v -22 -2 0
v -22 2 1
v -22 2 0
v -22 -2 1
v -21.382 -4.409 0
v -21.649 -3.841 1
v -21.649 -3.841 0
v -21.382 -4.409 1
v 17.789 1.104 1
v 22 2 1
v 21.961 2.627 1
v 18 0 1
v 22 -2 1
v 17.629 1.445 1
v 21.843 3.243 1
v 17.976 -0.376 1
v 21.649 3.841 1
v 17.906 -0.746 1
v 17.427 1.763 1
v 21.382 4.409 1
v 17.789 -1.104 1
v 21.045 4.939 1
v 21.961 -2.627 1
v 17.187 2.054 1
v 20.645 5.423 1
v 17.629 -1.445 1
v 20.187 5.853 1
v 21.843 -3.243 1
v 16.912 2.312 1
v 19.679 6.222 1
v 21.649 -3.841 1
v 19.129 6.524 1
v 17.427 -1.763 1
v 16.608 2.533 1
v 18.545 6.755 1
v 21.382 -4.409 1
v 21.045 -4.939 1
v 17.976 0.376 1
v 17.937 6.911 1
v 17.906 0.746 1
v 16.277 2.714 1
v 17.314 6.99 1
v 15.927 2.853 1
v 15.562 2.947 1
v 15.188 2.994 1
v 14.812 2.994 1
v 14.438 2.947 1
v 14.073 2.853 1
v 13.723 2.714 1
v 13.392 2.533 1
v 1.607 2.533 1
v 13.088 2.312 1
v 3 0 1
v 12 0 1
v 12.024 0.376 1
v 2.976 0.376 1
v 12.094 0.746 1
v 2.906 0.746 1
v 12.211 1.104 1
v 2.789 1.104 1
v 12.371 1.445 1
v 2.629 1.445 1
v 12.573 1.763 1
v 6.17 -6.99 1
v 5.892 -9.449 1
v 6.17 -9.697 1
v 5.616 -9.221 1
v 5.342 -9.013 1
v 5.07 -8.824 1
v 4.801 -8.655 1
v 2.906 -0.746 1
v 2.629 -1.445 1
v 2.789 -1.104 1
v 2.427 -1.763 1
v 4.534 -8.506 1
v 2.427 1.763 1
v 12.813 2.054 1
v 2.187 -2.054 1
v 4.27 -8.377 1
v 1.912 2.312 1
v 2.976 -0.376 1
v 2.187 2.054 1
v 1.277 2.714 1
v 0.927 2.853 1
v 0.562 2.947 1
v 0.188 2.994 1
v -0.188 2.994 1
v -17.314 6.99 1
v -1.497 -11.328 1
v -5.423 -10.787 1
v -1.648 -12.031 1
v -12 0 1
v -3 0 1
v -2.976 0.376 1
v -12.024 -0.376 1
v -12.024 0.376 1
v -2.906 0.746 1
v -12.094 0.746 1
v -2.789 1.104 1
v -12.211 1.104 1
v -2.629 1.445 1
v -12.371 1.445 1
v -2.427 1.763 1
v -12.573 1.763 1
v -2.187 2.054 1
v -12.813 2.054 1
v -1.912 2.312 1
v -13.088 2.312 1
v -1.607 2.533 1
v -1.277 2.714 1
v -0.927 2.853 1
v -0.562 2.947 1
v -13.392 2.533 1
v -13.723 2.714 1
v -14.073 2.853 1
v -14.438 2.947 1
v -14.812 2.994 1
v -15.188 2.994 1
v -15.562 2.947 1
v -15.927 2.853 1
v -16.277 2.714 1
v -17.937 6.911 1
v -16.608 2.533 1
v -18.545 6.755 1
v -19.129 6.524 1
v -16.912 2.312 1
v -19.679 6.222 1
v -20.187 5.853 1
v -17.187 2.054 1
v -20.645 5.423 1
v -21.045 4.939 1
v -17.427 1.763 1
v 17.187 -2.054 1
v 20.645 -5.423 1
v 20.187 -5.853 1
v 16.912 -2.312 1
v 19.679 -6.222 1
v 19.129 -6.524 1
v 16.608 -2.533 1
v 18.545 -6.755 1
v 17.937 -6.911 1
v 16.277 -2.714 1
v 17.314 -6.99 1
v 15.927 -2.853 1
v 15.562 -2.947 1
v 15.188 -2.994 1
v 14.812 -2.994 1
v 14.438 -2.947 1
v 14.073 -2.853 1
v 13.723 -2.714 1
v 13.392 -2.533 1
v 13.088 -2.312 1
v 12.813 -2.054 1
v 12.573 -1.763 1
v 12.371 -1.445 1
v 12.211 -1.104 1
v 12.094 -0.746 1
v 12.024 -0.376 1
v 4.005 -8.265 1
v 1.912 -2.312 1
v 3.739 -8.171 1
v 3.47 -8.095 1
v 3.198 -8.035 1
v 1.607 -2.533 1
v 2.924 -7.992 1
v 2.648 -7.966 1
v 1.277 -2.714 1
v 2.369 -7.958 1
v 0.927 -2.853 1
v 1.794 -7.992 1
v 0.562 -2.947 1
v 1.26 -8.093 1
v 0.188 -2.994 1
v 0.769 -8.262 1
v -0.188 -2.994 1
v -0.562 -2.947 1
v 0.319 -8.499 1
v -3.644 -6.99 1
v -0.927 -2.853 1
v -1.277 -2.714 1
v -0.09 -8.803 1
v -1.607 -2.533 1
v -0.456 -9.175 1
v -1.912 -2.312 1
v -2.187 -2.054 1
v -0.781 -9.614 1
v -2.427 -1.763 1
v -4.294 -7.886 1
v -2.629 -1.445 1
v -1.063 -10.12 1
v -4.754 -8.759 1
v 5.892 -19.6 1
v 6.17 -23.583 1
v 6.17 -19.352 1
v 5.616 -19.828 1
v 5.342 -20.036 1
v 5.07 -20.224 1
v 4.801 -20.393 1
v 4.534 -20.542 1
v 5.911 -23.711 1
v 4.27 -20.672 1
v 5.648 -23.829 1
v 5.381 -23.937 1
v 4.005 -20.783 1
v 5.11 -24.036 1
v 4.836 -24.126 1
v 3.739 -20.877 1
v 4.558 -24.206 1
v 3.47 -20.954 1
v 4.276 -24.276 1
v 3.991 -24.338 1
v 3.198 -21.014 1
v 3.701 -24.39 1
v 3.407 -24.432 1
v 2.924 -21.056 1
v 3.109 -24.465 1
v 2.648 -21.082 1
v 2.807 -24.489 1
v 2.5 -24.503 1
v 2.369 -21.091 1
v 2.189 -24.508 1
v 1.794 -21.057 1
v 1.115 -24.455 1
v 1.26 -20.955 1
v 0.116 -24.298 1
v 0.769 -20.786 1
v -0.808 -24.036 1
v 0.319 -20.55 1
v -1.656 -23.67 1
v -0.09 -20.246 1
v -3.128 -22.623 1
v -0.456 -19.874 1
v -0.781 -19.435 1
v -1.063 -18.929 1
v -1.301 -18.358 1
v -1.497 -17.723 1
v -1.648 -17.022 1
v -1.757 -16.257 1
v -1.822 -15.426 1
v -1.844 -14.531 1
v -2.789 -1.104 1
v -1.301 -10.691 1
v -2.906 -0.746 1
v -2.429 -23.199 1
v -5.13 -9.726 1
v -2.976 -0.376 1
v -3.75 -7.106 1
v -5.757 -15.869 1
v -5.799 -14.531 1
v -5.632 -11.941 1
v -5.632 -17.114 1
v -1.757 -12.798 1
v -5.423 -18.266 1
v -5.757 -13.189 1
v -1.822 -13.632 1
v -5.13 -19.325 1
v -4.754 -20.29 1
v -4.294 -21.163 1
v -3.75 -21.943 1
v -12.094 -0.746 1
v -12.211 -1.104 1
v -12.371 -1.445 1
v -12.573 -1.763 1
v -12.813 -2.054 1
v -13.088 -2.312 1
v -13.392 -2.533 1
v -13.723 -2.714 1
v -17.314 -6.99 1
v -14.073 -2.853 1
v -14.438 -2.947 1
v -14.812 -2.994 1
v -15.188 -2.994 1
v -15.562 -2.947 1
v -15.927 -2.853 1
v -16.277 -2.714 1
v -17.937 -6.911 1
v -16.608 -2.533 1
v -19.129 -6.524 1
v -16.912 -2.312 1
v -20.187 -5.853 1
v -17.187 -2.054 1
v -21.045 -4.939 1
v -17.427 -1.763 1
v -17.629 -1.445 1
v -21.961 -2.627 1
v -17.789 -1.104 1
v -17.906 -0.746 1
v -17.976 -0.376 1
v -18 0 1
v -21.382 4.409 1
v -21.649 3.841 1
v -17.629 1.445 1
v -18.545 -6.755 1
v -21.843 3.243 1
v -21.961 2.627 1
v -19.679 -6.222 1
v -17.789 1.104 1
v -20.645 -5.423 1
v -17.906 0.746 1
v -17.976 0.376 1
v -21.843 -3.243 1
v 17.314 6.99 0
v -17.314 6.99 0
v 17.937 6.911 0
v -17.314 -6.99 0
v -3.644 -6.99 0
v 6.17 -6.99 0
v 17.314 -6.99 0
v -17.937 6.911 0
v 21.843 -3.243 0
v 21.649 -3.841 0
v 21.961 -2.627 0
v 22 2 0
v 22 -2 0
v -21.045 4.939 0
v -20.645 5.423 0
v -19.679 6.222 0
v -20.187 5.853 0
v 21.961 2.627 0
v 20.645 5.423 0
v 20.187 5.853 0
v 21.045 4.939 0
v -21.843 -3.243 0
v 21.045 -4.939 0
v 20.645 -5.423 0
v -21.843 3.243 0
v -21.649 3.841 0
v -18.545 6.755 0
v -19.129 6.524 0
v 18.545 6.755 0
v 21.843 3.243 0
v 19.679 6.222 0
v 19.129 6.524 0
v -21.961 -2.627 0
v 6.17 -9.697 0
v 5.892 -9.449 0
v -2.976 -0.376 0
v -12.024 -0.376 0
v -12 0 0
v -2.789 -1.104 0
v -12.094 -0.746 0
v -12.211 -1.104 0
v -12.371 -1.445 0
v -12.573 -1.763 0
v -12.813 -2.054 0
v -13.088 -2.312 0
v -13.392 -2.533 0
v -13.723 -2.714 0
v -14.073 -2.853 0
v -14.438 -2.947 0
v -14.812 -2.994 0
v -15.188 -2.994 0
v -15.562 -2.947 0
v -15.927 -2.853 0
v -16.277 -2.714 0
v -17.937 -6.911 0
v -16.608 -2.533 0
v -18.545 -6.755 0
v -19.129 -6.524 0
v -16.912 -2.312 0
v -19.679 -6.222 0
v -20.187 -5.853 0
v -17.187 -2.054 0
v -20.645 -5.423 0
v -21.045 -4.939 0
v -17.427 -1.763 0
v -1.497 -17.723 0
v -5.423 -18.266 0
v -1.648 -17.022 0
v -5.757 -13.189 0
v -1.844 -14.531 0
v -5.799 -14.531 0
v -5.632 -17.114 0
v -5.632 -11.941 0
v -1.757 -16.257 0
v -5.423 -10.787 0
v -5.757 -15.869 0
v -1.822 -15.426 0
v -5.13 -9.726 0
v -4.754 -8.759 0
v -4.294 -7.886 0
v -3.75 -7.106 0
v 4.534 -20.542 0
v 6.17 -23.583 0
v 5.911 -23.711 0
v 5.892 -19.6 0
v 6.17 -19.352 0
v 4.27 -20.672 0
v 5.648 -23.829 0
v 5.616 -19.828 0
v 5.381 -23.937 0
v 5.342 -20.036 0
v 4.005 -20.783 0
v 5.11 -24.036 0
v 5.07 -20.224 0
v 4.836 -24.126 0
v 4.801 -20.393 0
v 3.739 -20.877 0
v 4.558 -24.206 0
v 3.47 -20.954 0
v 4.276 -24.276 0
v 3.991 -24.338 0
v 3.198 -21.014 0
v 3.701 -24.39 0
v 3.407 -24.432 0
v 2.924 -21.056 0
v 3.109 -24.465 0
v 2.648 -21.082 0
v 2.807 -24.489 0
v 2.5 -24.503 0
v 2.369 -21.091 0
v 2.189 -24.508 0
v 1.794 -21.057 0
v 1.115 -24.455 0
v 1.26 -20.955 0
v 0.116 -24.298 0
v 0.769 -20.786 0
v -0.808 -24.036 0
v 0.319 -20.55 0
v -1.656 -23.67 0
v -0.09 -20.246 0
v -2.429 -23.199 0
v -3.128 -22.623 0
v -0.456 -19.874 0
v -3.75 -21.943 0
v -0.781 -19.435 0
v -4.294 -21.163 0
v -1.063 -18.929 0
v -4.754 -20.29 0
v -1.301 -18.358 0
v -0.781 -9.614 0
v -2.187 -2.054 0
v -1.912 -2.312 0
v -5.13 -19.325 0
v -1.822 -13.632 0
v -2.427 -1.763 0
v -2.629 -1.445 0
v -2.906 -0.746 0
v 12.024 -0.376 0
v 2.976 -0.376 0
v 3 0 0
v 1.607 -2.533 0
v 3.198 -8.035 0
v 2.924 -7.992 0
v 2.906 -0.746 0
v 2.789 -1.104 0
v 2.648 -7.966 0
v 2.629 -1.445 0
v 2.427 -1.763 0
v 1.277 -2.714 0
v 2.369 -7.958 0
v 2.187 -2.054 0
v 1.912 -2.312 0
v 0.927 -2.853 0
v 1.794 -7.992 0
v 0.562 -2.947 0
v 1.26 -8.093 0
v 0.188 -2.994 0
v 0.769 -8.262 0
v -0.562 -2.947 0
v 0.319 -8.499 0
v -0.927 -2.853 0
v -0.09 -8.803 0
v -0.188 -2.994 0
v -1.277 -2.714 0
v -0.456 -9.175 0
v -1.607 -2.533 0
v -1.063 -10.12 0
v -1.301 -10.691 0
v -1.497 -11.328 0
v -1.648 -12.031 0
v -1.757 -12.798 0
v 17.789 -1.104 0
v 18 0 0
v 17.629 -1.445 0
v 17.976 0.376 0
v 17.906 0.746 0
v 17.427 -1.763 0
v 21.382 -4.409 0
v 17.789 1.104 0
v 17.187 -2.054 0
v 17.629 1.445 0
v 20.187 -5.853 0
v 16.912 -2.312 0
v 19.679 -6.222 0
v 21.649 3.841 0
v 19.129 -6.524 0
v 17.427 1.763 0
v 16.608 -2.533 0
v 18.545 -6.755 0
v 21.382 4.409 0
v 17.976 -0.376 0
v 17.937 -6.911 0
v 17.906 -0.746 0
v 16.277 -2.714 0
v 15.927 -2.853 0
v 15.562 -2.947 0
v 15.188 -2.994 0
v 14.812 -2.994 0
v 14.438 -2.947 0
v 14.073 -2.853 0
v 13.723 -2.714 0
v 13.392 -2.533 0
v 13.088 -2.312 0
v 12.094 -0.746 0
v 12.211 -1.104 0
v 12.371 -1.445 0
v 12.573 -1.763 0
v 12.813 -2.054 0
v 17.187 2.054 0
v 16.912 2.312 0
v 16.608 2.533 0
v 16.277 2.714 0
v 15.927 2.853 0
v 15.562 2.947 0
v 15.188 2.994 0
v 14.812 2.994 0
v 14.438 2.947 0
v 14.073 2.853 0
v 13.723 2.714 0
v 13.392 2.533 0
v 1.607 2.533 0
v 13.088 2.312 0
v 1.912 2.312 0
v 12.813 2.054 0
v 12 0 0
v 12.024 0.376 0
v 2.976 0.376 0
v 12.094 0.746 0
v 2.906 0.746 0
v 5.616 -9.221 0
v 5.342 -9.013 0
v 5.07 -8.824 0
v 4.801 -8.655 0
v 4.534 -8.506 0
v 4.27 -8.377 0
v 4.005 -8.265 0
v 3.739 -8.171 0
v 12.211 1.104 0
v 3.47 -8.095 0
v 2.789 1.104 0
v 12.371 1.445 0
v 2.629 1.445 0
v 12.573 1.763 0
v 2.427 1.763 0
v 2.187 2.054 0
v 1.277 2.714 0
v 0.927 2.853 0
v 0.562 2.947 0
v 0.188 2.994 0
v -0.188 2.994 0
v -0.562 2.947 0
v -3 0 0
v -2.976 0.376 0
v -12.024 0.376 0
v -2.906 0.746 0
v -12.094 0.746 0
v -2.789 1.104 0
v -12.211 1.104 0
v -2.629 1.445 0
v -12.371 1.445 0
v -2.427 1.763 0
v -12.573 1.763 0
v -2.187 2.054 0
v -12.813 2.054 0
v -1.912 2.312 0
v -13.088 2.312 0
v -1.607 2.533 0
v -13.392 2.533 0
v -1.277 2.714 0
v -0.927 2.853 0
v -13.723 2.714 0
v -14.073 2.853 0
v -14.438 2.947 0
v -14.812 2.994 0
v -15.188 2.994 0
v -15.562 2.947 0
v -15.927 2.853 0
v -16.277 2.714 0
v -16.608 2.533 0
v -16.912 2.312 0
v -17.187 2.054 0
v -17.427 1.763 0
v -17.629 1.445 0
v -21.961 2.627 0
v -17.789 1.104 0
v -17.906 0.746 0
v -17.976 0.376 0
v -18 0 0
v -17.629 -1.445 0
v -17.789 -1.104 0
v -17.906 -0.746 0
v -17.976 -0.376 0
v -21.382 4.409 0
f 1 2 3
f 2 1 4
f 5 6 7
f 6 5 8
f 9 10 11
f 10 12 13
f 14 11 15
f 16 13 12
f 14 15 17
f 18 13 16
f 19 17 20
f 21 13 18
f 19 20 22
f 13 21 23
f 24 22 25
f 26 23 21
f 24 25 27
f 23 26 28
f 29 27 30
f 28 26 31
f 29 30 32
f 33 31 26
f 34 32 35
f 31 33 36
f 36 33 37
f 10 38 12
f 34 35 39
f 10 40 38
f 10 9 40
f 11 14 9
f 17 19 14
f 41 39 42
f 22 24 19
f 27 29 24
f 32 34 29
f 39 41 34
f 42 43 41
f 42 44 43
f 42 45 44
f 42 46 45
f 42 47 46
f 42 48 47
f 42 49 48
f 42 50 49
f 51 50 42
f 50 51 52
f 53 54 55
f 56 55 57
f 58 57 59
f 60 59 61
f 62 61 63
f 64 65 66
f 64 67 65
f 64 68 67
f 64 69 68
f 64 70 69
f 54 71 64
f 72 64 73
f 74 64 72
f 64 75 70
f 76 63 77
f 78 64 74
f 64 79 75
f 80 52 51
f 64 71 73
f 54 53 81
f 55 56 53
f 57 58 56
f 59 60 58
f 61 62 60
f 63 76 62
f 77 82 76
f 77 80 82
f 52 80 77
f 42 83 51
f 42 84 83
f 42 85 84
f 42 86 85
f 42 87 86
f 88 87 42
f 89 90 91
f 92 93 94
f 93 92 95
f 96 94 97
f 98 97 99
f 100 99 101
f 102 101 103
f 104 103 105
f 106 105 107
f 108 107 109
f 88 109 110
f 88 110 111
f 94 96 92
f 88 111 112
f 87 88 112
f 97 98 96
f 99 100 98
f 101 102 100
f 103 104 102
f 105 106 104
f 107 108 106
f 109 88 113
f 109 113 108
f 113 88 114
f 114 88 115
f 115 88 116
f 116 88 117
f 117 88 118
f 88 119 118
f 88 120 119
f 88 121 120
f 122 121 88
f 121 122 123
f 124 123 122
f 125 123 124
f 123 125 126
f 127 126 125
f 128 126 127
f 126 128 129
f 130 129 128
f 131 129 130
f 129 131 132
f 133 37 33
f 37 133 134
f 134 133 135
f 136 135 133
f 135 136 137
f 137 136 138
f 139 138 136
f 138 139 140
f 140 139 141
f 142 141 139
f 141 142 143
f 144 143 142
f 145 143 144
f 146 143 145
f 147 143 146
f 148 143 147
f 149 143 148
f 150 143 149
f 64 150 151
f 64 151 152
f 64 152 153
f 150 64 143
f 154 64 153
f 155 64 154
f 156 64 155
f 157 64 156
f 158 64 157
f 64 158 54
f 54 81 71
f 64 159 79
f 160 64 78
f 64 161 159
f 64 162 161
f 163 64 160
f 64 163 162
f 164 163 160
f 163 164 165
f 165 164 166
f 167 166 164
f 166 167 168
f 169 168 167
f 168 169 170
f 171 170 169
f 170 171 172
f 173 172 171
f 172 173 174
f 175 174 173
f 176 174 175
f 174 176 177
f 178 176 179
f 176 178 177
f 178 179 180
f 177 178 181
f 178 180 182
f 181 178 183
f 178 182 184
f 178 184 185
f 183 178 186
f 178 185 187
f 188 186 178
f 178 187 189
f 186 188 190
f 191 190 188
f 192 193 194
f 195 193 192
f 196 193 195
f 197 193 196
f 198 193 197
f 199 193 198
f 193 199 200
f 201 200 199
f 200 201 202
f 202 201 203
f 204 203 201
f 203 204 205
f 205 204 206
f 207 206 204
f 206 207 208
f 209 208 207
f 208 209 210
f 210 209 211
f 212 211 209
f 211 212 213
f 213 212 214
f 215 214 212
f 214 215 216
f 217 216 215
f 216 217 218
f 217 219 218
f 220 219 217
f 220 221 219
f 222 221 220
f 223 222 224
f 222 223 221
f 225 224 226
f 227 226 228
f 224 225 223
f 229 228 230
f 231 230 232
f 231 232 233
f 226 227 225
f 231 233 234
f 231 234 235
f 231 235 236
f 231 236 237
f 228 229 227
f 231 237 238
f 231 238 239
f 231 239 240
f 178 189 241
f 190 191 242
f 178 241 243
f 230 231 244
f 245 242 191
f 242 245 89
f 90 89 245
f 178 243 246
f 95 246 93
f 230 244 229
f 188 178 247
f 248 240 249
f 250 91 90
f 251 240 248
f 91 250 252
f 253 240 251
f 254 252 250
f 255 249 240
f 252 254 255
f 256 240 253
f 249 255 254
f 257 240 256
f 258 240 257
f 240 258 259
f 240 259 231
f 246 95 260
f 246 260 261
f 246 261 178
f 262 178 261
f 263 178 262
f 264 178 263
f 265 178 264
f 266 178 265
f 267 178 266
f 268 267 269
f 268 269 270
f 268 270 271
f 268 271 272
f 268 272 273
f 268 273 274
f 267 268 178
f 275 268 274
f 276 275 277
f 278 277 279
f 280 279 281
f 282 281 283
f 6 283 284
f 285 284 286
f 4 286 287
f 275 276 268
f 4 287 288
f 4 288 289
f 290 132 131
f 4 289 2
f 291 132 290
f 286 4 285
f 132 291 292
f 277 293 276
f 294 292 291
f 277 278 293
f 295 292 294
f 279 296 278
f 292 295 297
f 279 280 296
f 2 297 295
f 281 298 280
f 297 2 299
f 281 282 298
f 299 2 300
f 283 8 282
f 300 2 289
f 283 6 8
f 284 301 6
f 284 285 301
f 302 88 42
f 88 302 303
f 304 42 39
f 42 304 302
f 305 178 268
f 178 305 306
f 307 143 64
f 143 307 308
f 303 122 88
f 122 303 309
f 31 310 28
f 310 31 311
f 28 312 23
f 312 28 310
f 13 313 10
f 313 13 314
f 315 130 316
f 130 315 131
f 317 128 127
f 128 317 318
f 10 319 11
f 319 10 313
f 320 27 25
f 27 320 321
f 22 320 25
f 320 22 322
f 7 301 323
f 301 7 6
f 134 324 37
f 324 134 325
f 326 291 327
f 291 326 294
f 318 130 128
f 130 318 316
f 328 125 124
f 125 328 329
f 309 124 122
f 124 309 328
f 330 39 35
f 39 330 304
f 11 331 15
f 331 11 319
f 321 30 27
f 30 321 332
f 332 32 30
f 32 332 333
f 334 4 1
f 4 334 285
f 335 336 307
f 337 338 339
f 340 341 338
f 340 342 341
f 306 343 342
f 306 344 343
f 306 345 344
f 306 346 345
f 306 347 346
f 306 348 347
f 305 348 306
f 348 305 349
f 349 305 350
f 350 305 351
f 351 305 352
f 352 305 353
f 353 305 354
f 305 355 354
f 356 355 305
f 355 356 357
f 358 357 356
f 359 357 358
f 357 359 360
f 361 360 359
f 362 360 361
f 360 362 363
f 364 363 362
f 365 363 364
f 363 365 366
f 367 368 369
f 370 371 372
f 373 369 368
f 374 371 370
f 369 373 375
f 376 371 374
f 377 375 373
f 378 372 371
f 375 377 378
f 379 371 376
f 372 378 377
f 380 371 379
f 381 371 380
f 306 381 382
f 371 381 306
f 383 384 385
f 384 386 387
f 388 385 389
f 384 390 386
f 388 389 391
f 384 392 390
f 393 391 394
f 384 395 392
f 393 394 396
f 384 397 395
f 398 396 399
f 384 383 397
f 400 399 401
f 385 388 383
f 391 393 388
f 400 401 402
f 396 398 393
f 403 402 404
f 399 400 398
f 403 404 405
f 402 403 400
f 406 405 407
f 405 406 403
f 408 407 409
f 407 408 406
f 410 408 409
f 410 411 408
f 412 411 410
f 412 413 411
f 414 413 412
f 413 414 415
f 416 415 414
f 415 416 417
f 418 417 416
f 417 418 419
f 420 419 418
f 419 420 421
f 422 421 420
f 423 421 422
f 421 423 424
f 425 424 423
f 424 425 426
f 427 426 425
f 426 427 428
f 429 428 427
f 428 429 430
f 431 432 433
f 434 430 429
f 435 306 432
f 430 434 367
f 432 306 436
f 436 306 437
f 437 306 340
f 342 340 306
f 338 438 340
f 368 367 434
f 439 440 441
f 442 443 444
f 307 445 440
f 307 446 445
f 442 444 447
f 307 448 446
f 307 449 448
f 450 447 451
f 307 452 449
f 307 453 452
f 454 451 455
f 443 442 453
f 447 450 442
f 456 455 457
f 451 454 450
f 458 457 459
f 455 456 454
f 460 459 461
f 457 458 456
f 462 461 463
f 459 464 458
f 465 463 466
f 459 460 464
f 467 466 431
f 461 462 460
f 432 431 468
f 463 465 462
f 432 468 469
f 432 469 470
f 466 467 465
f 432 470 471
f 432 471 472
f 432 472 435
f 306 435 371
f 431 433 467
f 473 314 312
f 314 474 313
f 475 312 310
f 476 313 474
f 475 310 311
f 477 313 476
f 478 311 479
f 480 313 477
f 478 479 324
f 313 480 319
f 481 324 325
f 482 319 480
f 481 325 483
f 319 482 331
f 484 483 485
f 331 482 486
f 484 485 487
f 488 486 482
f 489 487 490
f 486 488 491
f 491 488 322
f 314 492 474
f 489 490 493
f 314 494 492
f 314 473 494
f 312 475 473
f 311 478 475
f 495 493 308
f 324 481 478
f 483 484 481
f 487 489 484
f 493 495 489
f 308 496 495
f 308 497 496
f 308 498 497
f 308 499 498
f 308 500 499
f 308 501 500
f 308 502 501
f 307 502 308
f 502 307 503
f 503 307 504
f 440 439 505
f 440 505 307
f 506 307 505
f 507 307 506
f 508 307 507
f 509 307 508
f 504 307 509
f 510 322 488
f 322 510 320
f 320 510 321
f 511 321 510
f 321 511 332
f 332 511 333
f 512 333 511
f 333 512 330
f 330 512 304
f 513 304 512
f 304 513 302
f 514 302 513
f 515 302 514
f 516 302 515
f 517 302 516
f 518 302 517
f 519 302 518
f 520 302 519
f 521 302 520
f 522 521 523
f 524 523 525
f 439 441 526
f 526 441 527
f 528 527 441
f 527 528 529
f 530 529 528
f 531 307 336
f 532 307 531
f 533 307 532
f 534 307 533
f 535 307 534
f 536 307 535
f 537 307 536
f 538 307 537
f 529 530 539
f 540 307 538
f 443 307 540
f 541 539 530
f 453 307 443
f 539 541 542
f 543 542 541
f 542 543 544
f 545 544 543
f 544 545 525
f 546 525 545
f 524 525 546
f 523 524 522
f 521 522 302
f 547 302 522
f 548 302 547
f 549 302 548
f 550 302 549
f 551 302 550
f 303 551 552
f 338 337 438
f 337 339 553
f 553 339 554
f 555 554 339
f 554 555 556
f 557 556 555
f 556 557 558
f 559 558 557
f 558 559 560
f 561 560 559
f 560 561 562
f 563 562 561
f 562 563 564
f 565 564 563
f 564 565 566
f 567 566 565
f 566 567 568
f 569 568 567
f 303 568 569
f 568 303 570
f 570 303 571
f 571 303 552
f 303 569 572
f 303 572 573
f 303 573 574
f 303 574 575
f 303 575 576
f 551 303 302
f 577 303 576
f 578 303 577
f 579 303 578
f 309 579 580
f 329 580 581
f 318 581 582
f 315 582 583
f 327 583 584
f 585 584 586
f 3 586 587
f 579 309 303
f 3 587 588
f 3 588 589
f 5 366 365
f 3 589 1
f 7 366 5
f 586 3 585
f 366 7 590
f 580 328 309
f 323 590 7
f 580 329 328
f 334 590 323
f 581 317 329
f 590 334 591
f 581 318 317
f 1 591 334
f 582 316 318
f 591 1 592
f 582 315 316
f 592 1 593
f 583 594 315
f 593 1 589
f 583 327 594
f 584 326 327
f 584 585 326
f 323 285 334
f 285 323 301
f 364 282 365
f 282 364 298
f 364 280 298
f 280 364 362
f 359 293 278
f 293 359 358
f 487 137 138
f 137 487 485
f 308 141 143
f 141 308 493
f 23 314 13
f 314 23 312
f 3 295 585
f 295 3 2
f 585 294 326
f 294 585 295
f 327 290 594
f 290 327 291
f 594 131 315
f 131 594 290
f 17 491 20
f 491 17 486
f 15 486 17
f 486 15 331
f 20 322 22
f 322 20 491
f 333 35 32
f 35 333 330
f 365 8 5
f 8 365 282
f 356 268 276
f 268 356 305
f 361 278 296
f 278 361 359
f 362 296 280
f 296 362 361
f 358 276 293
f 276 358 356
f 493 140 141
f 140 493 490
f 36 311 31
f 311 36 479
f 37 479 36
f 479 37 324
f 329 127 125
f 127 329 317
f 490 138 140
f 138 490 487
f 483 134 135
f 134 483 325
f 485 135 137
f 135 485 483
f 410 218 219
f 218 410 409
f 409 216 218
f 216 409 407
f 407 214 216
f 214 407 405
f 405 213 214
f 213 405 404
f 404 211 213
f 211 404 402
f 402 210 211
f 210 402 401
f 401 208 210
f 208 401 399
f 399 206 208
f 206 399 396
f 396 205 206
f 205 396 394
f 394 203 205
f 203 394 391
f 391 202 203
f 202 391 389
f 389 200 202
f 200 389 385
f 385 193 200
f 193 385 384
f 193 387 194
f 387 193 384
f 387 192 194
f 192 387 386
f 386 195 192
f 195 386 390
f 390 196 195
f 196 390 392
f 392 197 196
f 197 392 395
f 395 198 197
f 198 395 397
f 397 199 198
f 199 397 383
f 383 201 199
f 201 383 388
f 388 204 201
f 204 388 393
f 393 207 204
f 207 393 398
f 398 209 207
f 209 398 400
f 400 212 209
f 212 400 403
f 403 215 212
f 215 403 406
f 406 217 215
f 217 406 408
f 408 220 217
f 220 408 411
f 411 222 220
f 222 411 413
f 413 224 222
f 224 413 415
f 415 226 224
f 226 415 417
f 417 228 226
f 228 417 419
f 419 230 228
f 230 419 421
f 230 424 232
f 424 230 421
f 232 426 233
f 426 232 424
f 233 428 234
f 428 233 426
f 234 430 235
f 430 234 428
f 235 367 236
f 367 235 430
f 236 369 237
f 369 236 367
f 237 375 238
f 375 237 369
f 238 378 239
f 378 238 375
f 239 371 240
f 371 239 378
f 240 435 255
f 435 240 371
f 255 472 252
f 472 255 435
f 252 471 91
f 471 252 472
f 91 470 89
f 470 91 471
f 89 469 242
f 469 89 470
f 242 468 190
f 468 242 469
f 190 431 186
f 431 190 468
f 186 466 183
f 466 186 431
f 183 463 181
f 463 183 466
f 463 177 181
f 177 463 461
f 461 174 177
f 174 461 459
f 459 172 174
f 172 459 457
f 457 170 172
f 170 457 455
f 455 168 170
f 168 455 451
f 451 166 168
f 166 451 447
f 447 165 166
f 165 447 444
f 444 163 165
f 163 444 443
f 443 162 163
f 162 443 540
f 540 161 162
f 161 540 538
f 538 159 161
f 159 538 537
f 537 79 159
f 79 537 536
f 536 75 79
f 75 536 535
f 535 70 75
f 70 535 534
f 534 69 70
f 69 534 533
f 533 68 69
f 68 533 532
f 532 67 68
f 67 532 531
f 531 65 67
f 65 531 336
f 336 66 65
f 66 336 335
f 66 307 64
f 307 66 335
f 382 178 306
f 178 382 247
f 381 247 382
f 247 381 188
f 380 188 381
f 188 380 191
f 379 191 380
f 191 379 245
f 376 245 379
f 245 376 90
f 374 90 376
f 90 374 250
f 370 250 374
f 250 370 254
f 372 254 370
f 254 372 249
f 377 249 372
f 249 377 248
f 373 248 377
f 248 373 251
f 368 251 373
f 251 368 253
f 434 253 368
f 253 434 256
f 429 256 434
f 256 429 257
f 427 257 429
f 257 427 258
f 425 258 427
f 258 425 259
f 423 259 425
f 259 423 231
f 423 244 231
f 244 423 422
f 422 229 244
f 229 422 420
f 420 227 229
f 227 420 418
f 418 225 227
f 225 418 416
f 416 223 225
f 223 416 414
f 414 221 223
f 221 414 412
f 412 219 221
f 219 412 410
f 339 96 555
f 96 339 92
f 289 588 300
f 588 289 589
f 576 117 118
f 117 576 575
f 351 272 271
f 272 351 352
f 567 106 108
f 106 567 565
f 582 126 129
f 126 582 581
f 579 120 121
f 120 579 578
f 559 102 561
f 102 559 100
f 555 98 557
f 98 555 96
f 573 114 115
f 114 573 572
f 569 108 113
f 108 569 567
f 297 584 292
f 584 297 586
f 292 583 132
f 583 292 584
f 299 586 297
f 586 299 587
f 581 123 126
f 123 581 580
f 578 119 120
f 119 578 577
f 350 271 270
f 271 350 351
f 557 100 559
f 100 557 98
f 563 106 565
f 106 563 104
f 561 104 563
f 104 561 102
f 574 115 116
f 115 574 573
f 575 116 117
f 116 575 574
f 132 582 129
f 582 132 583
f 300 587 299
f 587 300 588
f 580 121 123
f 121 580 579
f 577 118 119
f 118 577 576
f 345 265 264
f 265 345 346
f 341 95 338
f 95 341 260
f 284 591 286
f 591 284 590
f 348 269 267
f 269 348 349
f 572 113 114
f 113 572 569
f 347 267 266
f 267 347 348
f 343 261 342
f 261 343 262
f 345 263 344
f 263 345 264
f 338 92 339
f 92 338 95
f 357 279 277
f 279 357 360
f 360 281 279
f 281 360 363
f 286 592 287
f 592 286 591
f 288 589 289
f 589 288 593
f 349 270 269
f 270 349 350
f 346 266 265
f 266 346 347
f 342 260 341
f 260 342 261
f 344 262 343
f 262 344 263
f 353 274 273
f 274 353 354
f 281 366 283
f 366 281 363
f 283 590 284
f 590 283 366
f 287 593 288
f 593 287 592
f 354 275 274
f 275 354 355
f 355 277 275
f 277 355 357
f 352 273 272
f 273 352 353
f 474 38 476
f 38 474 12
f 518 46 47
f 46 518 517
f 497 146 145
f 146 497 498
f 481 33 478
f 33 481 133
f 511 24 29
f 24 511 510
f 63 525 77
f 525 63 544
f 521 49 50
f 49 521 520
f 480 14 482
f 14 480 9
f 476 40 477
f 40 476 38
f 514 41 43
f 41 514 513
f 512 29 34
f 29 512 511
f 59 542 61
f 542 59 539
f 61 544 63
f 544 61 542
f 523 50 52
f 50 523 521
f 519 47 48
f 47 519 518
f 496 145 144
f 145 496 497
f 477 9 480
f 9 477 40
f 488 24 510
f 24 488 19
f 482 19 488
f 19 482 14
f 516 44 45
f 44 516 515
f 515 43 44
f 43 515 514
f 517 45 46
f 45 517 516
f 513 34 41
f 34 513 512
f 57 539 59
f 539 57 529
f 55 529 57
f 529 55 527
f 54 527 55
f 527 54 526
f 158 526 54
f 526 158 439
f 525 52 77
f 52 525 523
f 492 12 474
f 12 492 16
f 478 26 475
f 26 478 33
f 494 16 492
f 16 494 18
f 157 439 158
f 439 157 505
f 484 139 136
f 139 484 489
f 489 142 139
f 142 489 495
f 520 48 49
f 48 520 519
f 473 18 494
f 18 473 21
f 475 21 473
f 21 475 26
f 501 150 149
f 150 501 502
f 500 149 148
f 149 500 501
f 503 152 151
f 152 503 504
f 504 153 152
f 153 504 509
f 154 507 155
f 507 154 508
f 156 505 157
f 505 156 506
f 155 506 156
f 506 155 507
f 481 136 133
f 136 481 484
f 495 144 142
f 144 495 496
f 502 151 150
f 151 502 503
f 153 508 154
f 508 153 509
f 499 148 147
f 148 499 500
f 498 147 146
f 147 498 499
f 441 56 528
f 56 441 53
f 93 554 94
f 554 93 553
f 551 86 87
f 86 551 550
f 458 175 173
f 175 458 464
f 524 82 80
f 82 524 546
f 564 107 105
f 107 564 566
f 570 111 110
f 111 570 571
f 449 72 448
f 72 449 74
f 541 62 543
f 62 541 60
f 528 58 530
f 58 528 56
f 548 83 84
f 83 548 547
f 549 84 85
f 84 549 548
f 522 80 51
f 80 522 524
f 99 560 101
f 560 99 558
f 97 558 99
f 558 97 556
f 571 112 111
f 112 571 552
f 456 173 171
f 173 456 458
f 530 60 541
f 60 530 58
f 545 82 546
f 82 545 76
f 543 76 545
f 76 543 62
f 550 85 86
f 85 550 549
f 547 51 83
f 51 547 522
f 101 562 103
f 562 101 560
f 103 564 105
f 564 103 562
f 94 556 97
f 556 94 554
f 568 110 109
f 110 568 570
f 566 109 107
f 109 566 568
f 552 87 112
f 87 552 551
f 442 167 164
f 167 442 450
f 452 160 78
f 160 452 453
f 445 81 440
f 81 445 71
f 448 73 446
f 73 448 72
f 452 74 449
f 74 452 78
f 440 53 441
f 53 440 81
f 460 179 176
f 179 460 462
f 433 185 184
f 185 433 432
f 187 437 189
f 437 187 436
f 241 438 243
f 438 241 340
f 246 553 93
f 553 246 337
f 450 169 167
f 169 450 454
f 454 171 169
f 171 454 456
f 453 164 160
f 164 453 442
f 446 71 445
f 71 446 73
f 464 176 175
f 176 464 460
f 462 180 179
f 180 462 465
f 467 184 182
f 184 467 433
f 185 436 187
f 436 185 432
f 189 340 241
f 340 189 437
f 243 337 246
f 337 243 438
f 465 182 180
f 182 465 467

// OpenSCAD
$fn = 50;


difference() {
	union() {
		translate(v = [0, 0, 0]) {
			rotate(a = [0, 0, 0]) {
				hull() {
					translate(v = [-17.0000000000, 2.0000000000, 0]) {
						rotate(a = [0, 0, 0]) {
							translate(v = [0, 0, 0]) {
								rotate(a = [0, 0, 0]) {
									cylinder(h = 1, r = 5);
								}
							}
						}
					}
					translate(v = [17.0000000000, 2.0000000000, 0]) {
						rotate(a = [0, 0, 0]) {
							translate(v = [0, 0, 0]) {
								rotate(a = [0, 0, 0]) {
									cylinder(h = 1, r = 5);
								}
							}
						}
					}
					translate(v = [-17.0000000000, -2.0000000000, 0]) {
						rotate(a = [0, 0, 0]) {
							translate(v = [0, 0, 0]) {
								rotate(a = [0, 0, 0]) {
									cylinder(h = 1, r = 5);
								}
							}
						}
					}
					translate(v = [17.0000000000, -2.0000000000, 0]) {
						rotate(a = [0, 0, 0]) {
							translate(v = [0, 0, 0]) {
								rotate(a = [0, 0, 0]) {
									cylinder(h = 1, r = 5);
								}
							}
						}
					}
				}
			}
		}
		translate(v = [0, -5, 0]) {
			rotate(a = [0, 0, 0]) {
				linear_extrude(height = 1) {
					text(font = "DejaVu Sans Mono:style=Bold", halign = "center", size = 19.0000000000, text = "C", valign = "top");
				}
			}
		}
	}
	union() {
		translate(v = [-15.0000000000, 0.0000000000, -125.0000000000]) {
			rotate(a = [0, 0, 0]) {
				cylinder(h = 250, r = 3.0000000000);
			}
		}
		translate(v = [15.0000000000, 0.0000000000, -125.0000000000]) {
			rotate(a = [0, 0, 0]) {
				cylinder(h = 250, r = 3.0000000000);
			}
		}
		translate(v = [15.0000000000, 0.0000000000, -125.0000000000]) {
			rotate(a = [0, 0, 0]) {
				cylinder(h = 250, r = 3.0000000000);
			}
		}
		translate(v = [0, 0, -125.0000000000]) {
			rotate(a = [0, 0, 0]) {
				cylinder(h = 250, r = 3.0000000000);
			}
		}
	}
}
